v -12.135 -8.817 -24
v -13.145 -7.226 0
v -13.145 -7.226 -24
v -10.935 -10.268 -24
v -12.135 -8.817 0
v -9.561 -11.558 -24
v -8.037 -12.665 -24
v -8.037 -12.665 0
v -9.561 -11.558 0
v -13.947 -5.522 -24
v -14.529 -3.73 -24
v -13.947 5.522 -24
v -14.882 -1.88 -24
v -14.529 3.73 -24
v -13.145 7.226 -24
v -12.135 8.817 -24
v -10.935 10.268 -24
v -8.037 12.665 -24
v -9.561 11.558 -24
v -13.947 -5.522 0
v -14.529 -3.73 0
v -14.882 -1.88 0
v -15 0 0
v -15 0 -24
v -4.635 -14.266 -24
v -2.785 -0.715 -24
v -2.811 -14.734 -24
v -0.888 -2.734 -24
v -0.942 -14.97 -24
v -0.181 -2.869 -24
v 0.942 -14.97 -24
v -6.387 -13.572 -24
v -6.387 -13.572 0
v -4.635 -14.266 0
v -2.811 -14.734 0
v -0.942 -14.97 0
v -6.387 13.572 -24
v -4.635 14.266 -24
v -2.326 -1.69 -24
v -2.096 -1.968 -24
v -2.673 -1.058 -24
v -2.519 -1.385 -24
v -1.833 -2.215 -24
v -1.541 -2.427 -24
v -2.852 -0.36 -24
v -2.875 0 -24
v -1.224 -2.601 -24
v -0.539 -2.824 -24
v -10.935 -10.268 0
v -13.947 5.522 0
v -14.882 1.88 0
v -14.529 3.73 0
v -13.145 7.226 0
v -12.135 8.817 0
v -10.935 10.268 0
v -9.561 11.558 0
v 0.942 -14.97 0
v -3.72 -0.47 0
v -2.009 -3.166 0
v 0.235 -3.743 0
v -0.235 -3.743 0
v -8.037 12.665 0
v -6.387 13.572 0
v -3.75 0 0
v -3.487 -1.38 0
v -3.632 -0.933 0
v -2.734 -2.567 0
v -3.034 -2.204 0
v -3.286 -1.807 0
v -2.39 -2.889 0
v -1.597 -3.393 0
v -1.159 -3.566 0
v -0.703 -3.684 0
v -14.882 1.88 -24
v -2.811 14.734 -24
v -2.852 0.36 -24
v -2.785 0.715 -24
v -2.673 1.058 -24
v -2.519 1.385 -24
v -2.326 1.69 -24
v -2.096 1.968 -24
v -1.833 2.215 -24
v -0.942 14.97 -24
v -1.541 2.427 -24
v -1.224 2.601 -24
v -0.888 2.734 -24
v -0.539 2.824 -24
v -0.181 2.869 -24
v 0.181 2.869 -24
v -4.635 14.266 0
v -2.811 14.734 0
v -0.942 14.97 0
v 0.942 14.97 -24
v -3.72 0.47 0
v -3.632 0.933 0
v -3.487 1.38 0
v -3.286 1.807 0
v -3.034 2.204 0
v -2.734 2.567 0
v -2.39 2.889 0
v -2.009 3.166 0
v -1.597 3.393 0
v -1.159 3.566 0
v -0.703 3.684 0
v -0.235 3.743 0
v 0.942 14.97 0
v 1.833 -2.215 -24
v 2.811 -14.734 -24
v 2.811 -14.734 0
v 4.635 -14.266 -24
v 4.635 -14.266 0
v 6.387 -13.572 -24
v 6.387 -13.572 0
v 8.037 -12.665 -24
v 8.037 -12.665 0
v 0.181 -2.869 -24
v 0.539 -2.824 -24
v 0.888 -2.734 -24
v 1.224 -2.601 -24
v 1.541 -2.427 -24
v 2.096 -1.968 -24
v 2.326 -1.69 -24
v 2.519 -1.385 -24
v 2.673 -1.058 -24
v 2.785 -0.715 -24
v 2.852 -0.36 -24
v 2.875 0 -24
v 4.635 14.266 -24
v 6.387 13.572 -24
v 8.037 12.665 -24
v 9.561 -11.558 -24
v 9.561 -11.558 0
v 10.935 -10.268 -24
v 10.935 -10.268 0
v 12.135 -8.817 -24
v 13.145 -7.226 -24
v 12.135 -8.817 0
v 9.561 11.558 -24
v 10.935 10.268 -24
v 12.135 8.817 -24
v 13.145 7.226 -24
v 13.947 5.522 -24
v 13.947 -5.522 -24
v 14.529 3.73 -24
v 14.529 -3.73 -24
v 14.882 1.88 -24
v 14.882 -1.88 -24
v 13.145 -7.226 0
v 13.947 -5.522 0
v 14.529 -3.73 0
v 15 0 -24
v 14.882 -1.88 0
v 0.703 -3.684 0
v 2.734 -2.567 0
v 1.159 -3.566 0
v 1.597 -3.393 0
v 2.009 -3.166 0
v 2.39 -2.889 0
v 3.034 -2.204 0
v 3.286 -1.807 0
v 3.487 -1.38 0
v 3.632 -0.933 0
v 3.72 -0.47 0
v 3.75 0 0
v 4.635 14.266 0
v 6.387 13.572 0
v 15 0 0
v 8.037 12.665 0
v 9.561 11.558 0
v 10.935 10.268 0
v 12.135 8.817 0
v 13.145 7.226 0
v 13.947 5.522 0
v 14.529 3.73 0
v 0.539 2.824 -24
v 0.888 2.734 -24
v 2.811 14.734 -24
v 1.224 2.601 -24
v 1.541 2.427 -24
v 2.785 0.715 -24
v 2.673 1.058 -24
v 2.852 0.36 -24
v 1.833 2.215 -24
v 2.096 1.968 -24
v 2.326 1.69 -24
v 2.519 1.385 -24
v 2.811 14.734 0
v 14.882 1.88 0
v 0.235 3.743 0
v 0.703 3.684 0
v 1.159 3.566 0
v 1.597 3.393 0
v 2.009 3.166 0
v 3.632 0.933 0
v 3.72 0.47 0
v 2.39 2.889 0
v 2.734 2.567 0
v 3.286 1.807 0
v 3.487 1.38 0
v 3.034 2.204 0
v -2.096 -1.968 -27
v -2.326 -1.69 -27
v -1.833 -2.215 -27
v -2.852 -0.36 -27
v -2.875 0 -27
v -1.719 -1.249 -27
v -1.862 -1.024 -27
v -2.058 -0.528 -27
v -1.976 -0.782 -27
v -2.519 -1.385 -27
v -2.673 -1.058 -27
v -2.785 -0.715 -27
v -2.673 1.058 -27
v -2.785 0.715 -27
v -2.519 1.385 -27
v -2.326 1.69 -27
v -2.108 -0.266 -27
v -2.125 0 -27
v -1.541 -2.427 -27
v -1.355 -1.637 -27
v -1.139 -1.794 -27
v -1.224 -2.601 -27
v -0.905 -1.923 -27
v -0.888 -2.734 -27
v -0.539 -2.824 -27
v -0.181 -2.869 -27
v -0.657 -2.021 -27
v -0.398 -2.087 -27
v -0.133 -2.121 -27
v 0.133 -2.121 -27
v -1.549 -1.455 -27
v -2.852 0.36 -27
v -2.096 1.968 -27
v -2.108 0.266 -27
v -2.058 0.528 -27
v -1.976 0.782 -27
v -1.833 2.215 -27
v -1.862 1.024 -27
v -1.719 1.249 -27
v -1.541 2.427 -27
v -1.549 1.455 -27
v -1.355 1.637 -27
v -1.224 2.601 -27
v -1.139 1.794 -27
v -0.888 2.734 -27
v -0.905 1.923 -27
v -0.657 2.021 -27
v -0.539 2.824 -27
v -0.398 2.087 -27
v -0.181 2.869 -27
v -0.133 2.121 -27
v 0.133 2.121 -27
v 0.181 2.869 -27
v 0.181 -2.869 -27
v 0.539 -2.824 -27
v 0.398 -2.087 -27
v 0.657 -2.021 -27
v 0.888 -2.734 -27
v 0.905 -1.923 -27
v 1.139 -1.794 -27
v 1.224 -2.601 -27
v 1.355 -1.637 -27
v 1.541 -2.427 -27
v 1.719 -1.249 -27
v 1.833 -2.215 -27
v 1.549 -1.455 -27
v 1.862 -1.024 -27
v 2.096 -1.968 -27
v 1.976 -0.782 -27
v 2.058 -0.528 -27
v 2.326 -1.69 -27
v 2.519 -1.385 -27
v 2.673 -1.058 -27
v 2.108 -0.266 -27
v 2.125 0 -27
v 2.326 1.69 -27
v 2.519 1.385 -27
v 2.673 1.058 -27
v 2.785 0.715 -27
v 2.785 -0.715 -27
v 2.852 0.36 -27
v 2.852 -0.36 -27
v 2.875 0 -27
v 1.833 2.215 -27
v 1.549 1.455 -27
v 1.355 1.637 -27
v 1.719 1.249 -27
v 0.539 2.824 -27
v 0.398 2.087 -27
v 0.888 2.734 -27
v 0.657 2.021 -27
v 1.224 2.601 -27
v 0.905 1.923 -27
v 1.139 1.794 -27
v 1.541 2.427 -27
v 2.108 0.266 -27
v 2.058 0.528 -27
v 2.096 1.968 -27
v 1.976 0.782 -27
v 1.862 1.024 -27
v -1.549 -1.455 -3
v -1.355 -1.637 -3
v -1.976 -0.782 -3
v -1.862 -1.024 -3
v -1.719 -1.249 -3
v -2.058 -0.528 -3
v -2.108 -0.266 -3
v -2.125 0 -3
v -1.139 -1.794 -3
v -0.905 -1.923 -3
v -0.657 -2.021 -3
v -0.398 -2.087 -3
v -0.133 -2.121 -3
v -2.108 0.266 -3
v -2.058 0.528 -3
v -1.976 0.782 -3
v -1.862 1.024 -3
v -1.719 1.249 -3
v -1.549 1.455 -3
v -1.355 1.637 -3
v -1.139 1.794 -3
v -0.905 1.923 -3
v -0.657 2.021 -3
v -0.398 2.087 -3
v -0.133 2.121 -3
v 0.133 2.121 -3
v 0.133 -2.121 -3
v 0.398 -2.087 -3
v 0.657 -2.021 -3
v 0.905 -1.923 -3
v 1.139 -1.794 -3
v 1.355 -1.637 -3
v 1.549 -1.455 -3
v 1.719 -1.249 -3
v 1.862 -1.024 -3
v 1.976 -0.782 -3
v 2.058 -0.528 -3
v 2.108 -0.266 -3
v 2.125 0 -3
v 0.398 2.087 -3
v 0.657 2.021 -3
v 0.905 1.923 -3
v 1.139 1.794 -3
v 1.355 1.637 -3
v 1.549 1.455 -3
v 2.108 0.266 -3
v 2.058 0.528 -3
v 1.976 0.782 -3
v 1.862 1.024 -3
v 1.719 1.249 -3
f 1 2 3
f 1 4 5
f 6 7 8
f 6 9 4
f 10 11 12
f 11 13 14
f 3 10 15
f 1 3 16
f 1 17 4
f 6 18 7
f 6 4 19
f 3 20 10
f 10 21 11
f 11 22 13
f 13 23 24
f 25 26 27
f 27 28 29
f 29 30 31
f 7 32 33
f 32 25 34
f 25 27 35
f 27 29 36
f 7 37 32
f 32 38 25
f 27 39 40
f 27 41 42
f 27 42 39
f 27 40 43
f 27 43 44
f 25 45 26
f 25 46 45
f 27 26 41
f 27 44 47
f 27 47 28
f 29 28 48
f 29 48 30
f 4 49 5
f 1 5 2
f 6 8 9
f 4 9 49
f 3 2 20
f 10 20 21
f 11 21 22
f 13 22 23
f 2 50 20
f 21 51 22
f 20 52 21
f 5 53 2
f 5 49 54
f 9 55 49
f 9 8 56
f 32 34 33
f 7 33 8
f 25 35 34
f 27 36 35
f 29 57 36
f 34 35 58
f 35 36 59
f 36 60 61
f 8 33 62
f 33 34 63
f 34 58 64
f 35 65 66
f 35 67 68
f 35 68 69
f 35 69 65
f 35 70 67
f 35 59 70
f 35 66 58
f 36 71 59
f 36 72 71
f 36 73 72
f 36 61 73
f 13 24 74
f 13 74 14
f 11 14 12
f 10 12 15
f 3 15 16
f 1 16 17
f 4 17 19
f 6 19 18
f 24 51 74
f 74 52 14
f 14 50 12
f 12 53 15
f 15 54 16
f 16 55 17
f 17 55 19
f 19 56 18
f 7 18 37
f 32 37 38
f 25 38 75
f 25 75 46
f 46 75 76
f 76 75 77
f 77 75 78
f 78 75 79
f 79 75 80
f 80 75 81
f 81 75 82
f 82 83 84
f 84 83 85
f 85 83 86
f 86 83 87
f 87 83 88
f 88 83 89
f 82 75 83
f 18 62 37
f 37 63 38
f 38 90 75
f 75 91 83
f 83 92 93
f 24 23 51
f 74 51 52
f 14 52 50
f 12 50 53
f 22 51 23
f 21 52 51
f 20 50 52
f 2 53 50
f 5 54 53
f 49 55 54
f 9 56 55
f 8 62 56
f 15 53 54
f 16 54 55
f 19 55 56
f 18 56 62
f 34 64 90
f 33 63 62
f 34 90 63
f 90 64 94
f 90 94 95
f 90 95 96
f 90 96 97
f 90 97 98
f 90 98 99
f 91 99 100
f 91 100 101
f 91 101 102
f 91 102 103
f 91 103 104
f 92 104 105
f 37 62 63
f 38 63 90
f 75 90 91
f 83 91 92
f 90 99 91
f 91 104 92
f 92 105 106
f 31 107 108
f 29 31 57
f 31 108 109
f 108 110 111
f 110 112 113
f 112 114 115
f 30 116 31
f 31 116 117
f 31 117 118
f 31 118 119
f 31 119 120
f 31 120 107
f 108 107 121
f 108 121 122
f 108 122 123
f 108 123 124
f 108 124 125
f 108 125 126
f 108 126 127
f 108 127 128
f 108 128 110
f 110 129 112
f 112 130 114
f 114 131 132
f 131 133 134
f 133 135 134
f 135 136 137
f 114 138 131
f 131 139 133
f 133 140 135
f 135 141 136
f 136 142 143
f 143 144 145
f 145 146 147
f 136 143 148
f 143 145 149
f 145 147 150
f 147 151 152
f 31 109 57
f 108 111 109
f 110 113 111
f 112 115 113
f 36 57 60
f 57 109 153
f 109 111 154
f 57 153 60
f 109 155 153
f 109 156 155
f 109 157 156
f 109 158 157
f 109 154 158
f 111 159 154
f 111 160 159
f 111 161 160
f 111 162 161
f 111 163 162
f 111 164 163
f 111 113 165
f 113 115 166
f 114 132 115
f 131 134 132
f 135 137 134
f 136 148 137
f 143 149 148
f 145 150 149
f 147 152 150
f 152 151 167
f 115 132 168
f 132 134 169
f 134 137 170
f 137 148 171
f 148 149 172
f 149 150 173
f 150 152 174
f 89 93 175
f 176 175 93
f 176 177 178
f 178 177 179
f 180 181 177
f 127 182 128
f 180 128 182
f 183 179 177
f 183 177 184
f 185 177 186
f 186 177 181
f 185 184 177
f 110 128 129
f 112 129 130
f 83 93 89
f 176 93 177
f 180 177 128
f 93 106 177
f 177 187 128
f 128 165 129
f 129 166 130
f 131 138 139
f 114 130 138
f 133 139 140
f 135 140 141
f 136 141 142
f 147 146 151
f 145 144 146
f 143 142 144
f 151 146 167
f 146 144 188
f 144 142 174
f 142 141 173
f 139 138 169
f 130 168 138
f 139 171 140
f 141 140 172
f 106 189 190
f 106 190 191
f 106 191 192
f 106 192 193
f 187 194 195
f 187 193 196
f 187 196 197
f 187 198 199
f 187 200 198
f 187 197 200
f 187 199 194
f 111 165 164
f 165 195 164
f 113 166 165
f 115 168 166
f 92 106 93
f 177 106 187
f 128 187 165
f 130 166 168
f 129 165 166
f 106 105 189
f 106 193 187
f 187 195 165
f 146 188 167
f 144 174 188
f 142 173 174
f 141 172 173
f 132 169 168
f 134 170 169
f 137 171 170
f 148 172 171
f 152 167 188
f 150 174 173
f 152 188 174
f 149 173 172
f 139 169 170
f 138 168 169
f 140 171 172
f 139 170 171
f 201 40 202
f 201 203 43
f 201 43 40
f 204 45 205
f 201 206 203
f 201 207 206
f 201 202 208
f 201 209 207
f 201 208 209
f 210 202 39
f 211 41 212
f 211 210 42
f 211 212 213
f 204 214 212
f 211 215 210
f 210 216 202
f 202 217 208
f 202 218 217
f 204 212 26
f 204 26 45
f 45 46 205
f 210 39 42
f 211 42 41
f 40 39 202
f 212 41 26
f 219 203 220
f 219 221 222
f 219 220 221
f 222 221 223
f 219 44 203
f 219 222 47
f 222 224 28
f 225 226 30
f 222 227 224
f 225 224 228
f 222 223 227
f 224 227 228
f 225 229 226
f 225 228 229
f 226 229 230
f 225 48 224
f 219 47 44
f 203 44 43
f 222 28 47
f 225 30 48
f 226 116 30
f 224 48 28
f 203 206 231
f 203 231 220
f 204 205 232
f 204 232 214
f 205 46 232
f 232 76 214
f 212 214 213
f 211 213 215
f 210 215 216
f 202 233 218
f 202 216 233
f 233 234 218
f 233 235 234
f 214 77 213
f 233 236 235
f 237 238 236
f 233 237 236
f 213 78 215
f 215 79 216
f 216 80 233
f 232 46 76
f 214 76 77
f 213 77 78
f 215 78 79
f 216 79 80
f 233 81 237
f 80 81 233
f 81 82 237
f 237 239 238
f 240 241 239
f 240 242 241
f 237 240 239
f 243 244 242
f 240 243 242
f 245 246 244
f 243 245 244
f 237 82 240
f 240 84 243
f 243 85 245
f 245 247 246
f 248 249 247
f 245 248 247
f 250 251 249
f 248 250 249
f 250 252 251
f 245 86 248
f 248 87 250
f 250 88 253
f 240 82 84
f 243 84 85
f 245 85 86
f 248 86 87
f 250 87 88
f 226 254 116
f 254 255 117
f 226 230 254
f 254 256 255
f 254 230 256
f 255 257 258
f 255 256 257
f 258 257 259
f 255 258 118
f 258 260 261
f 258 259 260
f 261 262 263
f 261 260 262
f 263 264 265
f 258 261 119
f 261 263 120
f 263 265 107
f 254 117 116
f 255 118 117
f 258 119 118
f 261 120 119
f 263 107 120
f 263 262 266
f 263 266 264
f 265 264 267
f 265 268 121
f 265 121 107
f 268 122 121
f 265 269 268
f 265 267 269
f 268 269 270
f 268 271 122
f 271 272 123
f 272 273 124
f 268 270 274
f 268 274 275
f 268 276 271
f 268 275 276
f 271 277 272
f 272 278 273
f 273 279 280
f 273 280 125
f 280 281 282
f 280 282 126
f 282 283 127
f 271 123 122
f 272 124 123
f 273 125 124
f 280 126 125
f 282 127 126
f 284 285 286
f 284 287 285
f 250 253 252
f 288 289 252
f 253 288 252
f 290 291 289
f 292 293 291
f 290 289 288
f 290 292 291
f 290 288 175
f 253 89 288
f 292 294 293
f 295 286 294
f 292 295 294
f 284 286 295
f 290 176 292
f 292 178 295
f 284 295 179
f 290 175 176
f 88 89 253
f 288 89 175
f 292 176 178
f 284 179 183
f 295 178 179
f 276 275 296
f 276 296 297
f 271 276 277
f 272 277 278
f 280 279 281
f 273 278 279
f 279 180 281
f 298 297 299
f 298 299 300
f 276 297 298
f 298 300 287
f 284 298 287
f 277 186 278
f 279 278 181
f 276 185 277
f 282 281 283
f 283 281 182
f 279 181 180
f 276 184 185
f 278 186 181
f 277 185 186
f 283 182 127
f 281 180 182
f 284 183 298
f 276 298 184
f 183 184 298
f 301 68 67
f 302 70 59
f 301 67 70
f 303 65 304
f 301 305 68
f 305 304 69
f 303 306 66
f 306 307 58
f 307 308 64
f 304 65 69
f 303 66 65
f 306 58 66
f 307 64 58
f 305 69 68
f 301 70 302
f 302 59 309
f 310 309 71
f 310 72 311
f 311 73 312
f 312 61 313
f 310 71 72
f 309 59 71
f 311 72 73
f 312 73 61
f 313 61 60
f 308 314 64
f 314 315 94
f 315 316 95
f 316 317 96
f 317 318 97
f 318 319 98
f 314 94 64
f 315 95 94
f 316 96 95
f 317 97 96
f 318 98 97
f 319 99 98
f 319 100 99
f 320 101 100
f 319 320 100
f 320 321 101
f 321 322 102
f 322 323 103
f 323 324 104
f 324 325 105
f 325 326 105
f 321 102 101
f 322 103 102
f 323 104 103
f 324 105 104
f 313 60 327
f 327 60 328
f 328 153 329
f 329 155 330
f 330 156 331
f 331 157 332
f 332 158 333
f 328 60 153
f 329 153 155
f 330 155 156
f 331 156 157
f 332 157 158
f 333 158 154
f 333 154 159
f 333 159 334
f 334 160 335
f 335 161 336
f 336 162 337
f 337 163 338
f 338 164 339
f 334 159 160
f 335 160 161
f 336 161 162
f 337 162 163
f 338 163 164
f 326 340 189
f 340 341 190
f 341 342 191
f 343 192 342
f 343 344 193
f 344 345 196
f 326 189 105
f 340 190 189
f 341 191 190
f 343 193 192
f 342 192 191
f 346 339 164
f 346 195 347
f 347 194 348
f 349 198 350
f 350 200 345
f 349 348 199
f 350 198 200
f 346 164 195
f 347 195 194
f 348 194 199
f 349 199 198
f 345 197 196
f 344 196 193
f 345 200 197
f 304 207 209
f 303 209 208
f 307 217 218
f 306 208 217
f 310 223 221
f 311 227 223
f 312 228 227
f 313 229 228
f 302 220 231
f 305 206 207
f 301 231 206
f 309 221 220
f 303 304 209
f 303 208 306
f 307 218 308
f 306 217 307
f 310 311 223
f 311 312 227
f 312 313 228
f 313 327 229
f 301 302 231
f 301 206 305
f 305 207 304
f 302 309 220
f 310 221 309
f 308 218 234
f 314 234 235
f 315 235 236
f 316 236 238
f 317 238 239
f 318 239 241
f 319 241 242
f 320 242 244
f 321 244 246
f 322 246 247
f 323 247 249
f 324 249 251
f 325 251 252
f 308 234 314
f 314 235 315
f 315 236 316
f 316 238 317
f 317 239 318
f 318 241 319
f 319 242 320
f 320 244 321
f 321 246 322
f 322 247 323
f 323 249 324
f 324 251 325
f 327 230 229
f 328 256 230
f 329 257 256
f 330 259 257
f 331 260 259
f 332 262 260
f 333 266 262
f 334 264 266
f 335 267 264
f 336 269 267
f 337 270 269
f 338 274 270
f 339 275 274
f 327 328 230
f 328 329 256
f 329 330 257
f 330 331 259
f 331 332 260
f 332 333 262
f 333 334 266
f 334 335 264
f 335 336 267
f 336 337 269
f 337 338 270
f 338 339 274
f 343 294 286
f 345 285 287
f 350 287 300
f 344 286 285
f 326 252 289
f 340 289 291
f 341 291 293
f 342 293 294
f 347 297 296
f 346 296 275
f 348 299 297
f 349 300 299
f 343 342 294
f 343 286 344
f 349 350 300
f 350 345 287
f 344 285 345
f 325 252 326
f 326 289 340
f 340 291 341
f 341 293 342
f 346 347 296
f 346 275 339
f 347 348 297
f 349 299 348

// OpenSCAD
$fn = 50;


difference() {
	union() {
		translate(v = [0, 0, -24.0000000000]) {
			cylinder(h = 24, r = 15.0000000000);
		}
		#translate(v = [0, 0, -27.0000000000]) {
			cylinder(h = 27, r = 2.8750000000);
		}
	}
	union() {
		translate(v = [0, 0, 0]) {
			rotate(a = [0, 0, 0]) {
				difference() {
					union() {
						translate(v = [0, 0, -27.0000000000]) {
							cylinder(h = 27, r = 2.0000000000);
						}
						translate(v = [0, 0, -3]) {
							cylinder(h = 3, r1 = 2.1250000000, r2 = 3.7500000000);
						}
						translate(v = [0, 0, -27.0000000000]) {
							cylinder(h = 27, r = 2.1250000000);
						}
						translate(v = [0, 0, -27.0000000000]) {
							cylinder(h = 27, r = 2.0000000000);
						}
					}
					union();
				}
			}
		}
	}
}
